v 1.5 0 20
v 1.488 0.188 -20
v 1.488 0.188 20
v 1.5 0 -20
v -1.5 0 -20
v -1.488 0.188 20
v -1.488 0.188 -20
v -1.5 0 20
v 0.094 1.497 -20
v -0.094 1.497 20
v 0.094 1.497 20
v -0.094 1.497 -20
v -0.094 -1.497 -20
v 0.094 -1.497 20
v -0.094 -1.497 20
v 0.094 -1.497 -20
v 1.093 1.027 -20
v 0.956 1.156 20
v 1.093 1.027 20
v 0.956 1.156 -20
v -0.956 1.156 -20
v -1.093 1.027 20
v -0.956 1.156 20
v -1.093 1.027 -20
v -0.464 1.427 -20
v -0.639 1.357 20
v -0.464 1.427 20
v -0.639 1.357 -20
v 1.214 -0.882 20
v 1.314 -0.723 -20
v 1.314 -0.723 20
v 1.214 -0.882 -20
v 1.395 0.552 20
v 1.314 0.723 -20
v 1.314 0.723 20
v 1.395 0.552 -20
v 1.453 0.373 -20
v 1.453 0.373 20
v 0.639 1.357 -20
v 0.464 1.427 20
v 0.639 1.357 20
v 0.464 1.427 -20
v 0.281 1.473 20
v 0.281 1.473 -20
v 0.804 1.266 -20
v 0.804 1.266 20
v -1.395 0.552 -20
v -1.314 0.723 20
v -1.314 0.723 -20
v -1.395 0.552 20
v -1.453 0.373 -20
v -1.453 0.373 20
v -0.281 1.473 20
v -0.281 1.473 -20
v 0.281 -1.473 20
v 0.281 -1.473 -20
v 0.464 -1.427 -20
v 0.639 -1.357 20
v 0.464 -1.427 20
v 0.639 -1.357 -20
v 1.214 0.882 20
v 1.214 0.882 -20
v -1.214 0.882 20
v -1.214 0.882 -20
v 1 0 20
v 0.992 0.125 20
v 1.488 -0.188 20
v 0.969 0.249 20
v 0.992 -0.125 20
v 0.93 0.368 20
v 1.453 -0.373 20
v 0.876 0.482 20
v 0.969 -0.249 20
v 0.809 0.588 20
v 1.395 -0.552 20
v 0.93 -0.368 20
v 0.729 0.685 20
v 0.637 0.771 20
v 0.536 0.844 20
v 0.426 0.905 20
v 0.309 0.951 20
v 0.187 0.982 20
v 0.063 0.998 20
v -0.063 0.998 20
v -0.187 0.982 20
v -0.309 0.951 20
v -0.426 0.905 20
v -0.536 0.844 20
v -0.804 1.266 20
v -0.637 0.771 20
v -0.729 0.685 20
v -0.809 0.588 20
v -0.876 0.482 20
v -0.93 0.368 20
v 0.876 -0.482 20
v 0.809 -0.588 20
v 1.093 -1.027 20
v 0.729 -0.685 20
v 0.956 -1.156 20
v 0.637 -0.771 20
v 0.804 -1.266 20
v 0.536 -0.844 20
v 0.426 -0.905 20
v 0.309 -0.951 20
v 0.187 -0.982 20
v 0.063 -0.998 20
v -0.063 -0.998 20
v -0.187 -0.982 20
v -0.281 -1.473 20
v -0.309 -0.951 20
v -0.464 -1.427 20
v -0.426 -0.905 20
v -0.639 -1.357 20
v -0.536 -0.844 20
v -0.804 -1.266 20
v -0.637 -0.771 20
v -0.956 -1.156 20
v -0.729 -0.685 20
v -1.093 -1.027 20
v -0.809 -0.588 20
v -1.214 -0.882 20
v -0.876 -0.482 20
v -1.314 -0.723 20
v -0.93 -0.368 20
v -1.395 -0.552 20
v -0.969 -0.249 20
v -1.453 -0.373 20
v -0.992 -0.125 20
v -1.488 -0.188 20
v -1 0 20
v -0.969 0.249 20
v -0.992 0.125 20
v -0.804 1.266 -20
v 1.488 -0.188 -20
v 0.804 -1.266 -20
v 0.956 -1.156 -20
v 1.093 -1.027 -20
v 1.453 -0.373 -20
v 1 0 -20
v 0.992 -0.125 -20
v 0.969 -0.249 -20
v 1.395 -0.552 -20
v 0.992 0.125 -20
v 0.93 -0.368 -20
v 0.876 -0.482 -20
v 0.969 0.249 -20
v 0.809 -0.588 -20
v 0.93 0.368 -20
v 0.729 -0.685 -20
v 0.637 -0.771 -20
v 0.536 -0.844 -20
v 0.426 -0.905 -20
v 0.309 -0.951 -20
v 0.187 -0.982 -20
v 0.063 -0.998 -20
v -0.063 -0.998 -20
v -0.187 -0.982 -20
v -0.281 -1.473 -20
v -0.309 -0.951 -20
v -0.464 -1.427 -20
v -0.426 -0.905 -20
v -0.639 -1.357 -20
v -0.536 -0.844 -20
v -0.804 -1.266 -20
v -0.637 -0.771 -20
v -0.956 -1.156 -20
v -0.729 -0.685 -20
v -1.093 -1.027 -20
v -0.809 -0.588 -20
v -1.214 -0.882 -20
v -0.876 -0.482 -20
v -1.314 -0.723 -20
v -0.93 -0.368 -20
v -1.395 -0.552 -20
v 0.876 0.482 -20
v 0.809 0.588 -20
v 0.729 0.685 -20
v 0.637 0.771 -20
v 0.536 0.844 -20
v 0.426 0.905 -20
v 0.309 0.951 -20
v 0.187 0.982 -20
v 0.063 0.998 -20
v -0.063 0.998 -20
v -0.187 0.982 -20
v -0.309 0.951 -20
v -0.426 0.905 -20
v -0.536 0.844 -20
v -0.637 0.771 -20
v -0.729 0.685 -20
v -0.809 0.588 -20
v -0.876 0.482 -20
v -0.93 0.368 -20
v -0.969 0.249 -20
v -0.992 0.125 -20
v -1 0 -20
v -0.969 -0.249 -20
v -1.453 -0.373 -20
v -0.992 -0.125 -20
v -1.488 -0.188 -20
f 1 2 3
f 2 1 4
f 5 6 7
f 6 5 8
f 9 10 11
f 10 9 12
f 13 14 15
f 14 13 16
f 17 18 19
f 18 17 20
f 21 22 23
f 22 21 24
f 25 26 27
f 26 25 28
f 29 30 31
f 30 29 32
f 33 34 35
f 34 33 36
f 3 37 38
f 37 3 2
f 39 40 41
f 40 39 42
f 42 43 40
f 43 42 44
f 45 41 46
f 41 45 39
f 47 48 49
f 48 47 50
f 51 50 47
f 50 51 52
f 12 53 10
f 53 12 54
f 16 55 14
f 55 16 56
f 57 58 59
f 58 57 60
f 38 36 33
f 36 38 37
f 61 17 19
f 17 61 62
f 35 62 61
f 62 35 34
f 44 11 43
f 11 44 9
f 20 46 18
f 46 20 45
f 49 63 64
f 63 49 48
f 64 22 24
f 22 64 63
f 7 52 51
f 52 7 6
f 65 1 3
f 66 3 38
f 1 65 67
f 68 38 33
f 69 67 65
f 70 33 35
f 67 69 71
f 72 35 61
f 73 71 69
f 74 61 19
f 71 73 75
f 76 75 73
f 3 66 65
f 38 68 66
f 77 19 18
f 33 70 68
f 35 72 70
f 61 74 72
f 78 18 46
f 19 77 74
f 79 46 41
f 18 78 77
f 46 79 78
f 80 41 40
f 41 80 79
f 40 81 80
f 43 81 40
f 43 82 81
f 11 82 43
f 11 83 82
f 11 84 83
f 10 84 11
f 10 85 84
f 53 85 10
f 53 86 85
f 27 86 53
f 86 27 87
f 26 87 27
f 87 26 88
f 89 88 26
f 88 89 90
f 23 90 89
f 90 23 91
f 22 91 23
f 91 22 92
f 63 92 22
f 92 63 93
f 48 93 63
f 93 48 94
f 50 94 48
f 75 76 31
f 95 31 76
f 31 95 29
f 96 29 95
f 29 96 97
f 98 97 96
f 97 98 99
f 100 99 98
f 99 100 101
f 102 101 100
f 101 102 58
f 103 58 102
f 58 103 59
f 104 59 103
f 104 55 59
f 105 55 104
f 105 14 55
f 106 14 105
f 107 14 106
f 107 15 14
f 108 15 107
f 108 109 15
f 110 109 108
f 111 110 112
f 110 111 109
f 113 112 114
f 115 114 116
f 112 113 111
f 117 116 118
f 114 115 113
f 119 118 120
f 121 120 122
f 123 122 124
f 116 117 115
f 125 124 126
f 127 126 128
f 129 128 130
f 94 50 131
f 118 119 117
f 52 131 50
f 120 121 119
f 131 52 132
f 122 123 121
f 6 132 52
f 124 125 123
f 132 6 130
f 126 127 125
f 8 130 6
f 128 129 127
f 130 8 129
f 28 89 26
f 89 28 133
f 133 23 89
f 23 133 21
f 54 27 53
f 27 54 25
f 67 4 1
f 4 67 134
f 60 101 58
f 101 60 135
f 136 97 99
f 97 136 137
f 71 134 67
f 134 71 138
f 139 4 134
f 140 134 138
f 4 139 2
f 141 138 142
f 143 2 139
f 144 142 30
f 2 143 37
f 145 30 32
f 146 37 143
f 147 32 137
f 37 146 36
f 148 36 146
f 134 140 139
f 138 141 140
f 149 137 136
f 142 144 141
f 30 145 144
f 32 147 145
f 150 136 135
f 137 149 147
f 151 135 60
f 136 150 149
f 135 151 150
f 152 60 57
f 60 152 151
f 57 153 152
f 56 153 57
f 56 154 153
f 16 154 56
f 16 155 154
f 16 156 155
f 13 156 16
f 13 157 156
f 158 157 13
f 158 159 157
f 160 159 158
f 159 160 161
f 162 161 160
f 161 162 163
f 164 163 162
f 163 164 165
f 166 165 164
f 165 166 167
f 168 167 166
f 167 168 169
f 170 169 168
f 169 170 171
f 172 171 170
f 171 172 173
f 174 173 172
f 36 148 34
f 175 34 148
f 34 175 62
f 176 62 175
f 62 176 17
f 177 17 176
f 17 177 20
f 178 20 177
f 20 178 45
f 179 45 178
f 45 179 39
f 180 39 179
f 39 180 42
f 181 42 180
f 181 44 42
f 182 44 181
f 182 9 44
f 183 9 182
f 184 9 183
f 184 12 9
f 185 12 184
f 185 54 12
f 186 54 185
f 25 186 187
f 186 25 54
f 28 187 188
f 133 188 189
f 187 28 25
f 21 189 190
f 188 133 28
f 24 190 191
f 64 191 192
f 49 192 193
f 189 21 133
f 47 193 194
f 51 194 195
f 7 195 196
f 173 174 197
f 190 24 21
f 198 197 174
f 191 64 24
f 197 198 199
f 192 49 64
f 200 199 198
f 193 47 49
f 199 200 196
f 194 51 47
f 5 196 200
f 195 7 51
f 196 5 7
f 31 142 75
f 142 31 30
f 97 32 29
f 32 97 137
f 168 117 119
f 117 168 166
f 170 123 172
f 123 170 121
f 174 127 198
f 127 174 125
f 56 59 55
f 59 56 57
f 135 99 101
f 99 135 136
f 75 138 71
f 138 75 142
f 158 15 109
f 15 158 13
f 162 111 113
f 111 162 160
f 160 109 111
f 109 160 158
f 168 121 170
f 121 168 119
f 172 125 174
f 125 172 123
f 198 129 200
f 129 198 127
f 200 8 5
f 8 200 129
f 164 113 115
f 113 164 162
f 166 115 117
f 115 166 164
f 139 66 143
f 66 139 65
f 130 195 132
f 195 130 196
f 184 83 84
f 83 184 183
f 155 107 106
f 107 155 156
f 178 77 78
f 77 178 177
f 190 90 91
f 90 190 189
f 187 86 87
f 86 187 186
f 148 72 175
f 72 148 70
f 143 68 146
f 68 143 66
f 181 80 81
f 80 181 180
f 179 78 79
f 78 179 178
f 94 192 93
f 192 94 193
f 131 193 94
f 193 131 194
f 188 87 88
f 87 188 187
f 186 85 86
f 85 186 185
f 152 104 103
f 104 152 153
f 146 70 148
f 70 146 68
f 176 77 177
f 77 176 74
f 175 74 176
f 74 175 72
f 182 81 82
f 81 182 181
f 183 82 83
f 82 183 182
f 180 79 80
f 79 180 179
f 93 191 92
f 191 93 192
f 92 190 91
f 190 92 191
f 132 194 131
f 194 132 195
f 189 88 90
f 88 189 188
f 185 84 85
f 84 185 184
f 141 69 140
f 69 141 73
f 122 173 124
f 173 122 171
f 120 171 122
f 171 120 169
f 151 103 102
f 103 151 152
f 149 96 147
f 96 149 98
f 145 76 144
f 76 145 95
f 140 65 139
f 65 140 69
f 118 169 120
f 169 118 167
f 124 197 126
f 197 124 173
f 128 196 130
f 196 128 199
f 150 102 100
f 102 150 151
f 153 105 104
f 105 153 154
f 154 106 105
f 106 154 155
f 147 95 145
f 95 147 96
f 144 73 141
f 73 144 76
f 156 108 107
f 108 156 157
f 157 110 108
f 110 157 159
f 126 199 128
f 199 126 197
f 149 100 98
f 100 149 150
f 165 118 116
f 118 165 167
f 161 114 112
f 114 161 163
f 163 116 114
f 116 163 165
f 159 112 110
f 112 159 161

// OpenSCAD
$fn = 50;


difference() {
	union() {
		translate(v = [0, 0, -20.0000000000]) {
			cylinder(h = 40, r = 1.5000000000);
		}
	}
	union() {
		translate(v = [0, 0, -100.0000000000]) {
			cylinder(h = 200, r = 1.0000000000);
		}
	}
}
